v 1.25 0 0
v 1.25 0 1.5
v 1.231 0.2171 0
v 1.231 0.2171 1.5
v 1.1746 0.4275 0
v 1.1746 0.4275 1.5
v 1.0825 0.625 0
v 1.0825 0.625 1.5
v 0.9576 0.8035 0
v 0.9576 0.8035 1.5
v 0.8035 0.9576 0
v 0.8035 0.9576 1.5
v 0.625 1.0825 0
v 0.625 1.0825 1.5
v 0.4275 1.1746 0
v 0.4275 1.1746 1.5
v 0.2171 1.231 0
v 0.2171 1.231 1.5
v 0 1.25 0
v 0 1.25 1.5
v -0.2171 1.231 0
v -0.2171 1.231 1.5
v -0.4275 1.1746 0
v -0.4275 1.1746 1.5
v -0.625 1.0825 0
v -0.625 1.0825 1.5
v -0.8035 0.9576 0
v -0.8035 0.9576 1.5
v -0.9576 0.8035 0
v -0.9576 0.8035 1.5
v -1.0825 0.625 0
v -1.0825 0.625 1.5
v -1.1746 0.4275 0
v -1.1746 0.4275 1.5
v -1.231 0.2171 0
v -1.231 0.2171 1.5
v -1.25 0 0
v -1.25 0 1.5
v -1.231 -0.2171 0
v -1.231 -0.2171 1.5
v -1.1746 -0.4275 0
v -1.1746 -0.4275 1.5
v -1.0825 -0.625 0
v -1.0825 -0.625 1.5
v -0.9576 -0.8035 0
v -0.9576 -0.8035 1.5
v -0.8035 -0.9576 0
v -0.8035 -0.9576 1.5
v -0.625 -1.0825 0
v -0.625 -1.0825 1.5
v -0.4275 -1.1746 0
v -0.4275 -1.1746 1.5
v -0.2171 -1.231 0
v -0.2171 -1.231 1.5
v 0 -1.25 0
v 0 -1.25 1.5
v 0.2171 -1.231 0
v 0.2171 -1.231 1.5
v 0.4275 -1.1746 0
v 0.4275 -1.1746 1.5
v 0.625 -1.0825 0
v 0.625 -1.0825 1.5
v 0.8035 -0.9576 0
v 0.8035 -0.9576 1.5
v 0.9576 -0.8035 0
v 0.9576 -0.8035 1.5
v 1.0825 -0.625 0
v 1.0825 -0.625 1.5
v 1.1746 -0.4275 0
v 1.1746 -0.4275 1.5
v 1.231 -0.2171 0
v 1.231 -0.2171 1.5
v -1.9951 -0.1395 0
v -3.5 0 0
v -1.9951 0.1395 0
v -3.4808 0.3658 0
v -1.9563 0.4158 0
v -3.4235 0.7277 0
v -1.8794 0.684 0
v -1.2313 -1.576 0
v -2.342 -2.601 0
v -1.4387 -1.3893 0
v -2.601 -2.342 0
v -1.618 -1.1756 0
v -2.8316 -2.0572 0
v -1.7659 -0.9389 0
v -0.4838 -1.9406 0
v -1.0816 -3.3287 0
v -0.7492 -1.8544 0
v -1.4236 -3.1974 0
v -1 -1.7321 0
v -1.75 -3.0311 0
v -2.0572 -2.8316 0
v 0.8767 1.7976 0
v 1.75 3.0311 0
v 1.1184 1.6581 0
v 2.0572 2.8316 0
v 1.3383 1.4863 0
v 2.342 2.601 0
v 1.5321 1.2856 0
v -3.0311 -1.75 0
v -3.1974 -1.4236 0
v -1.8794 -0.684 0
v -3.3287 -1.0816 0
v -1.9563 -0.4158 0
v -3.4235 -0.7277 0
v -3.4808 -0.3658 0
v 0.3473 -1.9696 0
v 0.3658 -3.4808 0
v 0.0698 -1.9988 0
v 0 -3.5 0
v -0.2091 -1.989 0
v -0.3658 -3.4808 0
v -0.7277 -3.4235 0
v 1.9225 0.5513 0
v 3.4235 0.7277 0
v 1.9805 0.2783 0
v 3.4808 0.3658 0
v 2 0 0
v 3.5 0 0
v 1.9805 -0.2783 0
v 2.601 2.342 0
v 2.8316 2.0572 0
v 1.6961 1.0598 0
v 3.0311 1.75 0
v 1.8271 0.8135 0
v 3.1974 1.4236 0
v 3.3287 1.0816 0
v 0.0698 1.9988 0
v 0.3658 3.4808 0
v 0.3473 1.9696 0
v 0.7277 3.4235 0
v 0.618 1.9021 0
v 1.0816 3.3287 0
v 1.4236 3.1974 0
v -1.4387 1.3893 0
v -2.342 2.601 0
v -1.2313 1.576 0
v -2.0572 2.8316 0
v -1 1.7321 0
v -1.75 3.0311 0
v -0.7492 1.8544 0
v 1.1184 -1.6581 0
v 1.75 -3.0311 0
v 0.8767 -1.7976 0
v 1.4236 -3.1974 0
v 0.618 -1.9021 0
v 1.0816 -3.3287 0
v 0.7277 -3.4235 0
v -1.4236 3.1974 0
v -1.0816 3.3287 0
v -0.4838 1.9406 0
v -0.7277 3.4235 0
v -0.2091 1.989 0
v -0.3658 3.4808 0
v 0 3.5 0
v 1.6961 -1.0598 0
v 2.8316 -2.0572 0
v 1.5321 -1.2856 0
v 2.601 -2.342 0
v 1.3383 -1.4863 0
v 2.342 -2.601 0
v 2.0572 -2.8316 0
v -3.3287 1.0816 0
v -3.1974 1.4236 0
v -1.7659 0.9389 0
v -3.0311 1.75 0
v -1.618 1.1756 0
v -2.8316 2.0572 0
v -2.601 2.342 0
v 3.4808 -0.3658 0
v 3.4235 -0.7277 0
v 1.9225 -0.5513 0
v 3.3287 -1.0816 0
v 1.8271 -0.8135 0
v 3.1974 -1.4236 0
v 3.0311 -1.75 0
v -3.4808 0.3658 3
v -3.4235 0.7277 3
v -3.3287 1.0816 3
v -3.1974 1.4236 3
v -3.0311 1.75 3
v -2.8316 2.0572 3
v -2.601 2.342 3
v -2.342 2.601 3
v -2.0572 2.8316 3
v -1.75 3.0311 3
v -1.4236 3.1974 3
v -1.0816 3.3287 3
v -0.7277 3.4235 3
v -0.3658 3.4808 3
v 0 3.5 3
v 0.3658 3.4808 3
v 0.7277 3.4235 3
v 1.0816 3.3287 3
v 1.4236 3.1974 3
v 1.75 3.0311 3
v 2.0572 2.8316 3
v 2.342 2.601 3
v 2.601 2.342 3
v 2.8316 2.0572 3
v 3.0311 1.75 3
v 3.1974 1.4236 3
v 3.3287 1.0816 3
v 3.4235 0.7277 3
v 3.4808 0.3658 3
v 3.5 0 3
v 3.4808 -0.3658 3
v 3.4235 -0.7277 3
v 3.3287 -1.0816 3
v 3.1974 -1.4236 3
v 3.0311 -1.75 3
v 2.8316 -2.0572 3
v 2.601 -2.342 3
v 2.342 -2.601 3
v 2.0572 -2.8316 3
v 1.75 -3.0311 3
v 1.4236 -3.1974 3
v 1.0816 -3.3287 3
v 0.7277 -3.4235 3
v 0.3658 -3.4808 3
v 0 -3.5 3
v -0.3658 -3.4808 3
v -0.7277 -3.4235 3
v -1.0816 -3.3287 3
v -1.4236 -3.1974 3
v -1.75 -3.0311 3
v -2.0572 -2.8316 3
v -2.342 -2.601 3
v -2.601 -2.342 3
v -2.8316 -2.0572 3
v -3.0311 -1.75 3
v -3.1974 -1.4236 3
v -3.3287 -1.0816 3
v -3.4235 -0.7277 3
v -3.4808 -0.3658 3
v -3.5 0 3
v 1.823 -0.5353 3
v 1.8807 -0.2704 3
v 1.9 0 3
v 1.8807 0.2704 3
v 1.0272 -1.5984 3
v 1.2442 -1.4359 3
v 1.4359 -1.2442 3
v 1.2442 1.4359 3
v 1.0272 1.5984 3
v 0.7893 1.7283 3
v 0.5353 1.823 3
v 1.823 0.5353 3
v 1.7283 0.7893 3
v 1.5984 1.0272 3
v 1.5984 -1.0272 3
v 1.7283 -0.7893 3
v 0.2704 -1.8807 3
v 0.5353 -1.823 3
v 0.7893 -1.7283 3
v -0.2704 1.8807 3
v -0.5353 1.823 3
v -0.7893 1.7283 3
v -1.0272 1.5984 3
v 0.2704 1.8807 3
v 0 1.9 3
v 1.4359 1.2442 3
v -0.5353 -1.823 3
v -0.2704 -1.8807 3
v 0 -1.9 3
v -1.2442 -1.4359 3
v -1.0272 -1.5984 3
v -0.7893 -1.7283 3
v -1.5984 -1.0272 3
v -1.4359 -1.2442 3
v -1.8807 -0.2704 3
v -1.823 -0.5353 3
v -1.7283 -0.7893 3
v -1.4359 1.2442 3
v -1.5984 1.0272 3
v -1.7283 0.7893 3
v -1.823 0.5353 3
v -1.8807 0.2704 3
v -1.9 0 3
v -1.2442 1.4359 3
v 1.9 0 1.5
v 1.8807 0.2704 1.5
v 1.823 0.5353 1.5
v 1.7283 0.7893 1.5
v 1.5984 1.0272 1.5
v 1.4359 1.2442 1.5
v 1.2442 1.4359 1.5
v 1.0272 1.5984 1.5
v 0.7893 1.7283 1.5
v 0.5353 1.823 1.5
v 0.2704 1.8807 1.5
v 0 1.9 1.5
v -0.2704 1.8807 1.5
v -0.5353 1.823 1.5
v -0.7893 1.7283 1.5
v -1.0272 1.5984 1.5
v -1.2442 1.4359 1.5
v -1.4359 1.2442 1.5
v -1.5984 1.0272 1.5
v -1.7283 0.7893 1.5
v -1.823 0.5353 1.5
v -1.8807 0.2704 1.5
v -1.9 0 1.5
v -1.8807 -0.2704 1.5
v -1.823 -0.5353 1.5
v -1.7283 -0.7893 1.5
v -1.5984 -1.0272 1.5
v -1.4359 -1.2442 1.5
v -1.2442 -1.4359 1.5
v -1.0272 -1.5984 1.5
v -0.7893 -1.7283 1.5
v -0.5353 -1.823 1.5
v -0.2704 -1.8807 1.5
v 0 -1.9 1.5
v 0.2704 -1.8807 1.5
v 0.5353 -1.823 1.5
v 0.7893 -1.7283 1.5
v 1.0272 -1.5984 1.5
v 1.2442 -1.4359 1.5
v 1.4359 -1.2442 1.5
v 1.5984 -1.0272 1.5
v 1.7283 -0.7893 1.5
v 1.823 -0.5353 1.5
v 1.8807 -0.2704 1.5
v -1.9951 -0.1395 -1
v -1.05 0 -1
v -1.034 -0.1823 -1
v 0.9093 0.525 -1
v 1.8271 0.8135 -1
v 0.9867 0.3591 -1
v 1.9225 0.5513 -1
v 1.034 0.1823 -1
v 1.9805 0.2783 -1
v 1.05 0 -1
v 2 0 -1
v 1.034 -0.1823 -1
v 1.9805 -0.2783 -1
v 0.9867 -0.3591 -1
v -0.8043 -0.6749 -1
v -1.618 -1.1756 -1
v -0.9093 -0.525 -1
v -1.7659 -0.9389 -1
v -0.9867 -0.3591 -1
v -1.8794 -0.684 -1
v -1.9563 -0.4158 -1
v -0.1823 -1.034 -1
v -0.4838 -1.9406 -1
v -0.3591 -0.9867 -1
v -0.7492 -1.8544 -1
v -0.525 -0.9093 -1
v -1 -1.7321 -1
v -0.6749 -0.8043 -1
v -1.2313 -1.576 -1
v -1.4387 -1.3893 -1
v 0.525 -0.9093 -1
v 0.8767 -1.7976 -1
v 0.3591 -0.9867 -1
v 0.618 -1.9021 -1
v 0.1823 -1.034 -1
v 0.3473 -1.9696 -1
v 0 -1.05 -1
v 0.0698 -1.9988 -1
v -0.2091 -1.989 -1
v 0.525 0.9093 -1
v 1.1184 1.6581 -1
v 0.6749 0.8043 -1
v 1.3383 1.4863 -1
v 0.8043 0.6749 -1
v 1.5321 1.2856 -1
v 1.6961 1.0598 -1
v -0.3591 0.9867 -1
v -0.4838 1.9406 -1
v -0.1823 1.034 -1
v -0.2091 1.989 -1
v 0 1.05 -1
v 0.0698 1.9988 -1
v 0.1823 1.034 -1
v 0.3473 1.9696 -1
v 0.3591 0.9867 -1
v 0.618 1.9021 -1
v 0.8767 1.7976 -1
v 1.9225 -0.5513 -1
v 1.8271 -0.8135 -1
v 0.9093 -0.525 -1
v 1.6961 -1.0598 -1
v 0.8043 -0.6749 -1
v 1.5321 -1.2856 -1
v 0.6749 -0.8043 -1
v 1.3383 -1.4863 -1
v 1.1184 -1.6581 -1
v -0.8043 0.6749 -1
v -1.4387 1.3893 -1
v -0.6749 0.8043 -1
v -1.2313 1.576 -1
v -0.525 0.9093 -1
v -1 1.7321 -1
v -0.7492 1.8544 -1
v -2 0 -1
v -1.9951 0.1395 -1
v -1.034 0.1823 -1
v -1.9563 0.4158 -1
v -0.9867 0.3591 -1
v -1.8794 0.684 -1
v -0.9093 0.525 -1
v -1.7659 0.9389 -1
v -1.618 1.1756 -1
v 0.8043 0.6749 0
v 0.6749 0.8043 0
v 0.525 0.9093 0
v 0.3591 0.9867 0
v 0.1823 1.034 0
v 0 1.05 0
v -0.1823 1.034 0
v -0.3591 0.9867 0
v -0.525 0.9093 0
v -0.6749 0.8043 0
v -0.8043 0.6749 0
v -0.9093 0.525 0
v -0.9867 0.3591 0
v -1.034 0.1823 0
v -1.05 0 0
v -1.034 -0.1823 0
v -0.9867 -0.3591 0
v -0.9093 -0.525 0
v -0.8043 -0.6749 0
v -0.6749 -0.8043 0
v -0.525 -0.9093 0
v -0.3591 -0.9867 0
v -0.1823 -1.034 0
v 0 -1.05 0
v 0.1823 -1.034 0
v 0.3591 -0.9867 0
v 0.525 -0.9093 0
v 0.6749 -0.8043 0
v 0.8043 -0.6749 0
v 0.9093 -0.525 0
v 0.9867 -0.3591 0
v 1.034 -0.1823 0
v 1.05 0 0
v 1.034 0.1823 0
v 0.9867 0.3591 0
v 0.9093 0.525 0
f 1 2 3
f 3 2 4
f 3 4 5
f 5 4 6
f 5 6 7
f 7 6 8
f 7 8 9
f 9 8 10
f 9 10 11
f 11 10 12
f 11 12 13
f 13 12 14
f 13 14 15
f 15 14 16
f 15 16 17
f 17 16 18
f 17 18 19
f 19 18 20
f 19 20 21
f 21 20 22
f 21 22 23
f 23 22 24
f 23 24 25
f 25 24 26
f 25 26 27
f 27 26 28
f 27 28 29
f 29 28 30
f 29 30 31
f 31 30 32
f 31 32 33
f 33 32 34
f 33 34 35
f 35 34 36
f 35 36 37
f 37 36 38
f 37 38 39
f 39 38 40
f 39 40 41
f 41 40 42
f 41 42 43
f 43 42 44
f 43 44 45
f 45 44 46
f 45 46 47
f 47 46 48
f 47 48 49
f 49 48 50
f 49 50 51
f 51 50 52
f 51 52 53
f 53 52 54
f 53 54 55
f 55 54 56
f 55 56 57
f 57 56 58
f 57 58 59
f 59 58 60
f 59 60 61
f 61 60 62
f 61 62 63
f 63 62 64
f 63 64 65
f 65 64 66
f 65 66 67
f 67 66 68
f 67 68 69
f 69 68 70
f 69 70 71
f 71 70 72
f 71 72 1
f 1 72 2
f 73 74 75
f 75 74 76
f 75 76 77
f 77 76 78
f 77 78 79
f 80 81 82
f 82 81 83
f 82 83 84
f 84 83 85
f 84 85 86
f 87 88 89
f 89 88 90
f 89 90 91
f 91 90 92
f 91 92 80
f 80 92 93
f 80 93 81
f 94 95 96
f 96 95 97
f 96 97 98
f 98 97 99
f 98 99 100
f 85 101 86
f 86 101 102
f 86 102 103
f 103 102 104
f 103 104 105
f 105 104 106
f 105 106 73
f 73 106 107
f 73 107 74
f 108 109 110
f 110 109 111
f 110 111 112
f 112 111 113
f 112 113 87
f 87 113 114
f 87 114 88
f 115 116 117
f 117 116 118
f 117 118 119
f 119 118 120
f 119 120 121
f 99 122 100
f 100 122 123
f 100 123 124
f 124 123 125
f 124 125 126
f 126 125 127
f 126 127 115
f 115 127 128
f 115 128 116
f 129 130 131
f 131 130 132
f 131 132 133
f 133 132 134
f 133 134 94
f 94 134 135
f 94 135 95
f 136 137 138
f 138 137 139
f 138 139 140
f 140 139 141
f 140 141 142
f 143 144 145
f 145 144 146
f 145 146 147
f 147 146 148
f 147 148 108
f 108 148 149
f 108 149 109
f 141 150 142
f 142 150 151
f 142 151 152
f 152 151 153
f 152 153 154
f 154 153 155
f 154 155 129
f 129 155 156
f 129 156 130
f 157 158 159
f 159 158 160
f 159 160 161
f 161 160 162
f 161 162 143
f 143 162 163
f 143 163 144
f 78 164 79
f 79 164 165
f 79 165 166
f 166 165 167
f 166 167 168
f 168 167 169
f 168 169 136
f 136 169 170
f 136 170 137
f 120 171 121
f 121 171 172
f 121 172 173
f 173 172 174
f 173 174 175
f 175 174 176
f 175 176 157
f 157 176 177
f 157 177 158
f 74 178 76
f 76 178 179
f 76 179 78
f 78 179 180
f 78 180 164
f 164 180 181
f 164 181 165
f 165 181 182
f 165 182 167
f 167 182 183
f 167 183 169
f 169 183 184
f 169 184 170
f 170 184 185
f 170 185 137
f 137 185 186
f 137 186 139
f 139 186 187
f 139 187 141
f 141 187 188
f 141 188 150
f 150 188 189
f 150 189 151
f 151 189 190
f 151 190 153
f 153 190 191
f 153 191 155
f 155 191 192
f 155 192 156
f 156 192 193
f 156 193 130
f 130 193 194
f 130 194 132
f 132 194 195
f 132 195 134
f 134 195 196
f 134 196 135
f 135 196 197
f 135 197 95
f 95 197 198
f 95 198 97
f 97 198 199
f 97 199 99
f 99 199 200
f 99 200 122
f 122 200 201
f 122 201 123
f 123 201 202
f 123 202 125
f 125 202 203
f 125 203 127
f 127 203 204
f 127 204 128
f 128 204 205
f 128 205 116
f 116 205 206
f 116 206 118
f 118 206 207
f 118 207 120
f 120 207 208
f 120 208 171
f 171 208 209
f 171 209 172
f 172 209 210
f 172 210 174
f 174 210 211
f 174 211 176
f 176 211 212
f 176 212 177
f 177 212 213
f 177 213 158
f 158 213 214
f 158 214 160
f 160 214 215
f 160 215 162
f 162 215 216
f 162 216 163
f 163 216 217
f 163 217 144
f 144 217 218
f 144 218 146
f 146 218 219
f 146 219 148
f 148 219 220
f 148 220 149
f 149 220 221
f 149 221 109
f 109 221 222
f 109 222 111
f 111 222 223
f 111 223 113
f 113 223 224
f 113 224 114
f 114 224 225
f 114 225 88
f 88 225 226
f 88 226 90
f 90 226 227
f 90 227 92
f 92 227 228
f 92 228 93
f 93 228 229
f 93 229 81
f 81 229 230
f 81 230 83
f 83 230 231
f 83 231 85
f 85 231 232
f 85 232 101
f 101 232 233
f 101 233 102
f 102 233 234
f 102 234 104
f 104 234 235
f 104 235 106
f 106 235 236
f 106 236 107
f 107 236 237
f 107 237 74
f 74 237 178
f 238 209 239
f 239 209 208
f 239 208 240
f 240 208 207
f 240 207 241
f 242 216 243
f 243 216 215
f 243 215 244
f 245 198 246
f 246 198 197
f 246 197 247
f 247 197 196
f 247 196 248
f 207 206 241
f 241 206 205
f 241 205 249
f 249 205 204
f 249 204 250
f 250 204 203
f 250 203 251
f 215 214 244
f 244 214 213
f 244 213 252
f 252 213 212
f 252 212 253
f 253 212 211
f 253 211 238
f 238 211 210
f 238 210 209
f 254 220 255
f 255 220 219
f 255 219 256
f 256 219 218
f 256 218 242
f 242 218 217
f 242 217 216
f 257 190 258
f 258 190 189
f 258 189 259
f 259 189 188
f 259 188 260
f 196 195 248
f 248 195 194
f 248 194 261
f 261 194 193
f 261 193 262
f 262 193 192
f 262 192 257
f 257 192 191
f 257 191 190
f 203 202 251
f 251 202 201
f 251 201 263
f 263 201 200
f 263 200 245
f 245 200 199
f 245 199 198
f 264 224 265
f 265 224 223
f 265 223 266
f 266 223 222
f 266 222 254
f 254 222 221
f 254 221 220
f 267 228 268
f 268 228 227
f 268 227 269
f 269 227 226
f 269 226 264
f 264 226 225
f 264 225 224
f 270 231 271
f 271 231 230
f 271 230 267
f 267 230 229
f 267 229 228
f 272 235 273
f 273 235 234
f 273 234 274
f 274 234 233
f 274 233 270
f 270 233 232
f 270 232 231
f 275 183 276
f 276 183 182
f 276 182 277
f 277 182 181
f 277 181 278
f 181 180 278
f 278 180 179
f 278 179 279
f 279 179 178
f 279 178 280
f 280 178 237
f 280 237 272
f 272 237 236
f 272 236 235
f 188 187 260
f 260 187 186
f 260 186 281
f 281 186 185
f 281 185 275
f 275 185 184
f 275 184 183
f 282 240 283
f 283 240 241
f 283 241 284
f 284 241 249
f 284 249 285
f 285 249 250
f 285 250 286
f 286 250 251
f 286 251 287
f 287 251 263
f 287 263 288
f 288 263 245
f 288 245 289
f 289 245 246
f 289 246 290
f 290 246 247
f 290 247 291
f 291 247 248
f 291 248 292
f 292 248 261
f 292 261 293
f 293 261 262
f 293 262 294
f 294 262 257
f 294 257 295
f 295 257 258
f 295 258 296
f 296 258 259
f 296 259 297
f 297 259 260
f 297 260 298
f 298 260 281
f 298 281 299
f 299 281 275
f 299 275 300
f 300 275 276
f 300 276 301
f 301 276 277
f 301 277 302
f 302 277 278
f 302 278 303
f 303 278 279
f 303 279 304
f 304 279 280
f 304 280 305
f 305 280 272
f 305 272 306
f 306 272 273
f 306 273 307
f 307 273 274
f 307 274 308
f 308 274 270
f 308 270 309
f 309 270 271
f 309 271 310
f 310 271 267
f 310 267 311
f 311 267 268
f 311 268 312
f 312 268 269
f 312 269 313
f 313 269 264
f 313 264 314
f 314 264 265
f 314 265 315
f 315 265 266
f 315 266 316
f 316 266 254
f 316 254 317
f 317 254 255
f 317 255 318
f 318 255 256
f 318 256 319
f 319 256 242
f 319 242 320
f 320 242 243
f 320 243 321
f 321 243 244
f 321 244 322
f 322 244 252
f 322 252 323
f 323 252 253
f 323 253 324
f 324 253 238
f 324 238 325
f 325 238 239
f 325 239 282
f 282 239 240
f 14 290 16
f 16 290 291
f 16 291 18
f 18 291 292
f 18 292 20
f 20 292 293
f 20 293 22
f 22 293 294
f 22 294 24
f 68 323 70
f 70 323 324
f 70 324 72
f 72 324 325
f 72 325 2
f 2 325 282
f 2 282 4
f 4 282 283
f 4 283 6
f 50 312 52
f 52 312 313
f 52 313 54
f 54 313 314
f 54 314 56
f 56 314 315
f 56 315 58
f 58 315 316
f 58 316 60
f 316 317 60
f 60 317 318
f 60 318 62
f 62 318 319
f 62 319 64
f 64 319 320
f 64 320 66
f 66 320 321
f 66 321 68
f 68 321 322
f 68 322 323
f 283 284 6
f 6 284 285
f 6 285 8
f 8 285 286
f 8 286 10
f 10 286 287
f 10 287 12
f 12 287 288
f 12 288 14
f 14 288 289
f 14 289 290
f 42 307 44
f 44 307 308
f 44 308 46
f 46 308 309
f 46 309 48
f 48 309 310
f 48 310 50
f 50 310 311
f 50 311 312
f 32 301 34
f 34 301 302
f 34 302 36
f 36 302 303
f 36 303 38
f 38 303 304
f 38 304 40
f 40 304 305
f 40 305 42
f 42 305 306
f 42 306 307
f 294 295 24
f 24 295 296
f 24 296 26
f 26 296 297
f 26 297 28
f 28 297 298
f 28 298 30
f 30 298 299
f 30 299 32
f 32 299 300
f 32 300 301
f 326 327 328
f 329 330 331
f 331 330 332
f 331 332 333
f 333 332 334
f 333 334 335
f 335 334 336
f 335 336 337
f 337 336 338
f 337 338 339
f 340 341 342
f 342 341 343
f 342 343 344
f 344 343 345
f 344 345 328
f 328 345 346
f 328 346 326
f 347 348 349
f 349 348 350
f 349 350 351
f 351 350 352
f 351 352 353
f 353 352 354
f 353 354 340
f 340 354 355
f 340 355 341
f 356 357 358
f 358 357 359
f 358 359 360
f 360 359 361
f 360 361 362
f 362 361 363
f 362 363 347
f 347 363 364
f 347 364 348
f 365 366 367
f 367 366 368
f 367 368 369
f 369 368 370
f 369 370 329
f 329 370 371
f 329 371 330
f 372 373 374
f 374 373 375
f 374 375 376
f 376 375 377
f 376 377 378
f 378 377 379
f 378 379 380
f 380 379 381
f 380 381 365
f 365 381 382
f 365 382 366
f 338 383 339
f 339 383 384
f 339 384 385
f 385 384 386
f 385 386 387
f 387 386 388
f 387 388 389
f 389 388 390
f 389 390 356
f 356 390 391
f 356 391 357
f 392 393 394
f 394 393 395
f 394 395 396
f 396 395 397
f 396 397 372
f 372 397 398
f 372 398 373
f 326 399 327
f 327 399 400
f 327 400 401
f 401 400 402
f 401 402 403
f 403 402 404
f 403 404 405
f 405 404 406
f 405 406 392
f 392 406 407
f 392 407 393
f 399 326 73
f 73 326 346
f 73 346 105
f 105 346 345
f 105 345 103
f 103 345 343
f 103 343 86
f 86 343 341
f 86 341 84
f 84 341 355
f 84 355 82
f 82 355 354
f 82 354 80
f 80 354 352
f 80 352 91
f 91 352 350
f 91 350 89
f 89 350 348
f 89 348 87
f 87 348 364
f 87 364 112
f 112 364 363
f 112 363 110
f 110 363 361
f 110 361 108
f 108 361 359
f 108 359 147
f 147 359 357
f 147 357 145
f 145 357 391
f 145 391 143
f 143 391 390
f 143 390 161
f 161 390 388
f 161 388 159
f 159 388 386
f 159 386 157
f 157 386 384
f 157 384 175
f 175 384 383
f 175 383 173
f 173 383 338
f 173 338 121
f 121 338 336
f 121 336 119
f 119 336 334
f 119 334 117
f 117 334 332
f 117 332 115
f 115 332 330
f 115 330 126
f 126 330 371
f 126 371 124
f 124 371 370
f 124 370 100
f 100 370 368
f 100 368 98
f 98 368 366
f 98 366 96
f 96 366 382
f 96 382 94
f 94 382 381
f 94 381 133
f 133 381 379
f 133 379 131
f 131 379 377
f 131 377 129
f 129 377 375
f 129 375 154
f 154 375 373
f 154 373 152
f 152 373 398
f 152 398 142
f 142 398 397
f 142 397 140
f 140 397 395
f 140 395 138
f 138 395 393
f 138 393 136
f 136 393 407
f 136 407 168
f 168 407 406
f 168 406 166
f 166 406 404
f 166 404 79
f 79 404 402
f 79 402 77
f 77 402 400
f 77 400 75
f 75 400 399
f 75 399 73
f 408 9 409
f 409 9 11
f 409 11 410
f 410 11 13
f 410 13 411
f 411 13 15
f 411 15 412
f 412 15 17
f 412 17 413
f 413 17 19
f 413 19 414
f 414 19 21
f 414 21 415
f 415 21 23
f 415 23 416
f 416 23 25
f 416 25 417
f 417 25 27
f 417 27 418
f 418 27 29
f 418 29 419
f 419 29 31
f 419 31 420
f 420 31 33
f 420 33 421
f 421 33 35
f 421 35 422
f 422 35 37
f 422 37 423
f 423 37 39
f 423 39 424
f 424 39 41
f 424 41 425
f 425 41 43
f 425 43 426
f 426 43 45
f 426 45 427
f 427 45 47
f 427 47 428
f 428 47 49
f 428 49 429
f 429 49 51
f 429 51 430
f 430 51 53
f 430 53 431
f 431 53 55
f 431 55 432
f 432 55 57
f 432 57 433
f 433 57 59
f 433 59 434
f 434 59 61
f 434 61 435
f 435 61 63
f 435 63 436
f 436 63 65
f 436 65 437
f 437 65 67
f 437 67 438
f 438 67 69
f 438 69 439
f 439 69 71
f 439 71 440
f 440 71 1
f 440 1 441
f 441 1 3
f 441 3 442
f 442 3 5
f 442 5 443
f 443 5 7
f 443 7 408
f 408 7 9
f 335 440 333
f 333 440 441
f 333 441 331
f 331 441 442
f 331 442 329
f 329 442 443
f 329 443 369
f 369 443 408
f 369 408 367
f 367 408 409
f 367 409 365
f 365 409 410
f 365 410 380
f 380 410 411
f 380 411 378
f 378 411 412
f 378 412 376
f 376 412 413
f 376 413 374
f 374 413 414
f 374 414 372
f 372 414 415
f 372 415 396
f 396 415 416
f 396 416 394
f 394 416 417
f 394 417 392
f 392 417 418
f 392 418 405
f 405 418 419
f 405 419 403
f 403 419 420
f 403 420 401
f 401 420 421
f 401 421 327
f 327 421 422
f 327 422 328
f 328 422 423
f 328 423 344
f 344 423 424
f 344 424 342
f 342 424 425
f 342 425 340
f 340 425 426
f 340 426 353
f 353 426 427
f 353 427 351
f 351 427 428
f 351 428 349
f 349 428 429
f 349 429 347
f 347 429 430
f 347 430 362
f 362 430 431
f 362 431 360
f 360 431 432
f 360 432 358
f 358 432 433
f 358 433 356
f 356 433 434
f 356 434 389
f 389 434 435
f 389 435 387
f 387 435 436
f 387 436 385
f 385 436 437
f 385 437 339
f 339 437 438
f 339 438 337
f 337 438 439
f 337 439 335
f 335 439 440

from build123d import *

# Parameters (mm, degrees)
SKETCH_1_R          = 3.5
EXTRUDE_1_DEPTH     = 3
SKETCH_2_R          = 1.9
CUT_EXTRUDE_1_DEPTH = 1.5
SKETCH_3_R          = 1.25
CUT_EXTRUDE_2_DEPTH = 6.172040216
SKETCH1_R           = 1.25
SKETCH1_R_2         = 1.05
BOSS_EXTRUDE1_DEPTH = 1
SKETCH3_R           = 2
SKETCH3_R_2         = 1.25
BOSS_EXTRUDE2_DEPTH = 1


with BuildPart() as part:
    # 草图1 → 凸台-拉伸1 (new body)
    with BuildSketch(Plane.XY):
        Circle(SKETCH_1_R)
    extrude(amount=EXTRUDE_1_DEPTH)

    # 草图2 → 切除-拉伸1 (cut)
    with BuildSketch(Plane.XY.offset(3)):
        Circle(SKETCH_2_R)
    extrude(amount=-CUT_EXTRUDE_1_DEPTH, mode=Mode.SUBTRACT)

    # 草图3 → 切除-拉伸2 (cut, through all)
    with BuildSketch(Plane.XY.offset(1.5)):
        Circle(SKETCH_3_R)
    extrude(amount=-CUT_EXTRUDE_2_DEPTH, mode=Mode.SUBTRACT)



with BuildPart() as body_2:
    # Sketch1 → Boss-Extrude1 (new body)
    with BuildSketch(Plane(origin=(0, 0, 0), x_dir=(-1, 0, 0), z_dir=(0, 0, -1))):
        with Locations(Location((0, 0, 0), (0, 0, 180))):
            Circle(SKETCH1_R)
        Circle(SKETCH1_R_2, mode=Mode.SUBTRACT)
    extrude(amount=BOSS_EXTRUDE1_DEPTH)


with BuildPart() as part_1:
    add(part.part)

    add(body_2.part)  # Boss-Extrude2 merges body 2
    # Sketch3 → Boss-Extrude2 (add)
    with BuildSketch(Plane(origin=(0, 0, 0), x_dir=(-1, 0, 0), z_dir=(0, 0, -1))):
        with Locations(Location((0, 0, 0), (0, 0, 180))):
            Circle(SKETCH3_R)
        with Locations(Location((0, 0, 0), (0, 0, 180))):
            Circle(SKETCH3_R_2, mode=Mode.SUBTRACT)
    extrude(amount=BOSS_EXTRUDE2_DEPTH)


solid = part_1.part
